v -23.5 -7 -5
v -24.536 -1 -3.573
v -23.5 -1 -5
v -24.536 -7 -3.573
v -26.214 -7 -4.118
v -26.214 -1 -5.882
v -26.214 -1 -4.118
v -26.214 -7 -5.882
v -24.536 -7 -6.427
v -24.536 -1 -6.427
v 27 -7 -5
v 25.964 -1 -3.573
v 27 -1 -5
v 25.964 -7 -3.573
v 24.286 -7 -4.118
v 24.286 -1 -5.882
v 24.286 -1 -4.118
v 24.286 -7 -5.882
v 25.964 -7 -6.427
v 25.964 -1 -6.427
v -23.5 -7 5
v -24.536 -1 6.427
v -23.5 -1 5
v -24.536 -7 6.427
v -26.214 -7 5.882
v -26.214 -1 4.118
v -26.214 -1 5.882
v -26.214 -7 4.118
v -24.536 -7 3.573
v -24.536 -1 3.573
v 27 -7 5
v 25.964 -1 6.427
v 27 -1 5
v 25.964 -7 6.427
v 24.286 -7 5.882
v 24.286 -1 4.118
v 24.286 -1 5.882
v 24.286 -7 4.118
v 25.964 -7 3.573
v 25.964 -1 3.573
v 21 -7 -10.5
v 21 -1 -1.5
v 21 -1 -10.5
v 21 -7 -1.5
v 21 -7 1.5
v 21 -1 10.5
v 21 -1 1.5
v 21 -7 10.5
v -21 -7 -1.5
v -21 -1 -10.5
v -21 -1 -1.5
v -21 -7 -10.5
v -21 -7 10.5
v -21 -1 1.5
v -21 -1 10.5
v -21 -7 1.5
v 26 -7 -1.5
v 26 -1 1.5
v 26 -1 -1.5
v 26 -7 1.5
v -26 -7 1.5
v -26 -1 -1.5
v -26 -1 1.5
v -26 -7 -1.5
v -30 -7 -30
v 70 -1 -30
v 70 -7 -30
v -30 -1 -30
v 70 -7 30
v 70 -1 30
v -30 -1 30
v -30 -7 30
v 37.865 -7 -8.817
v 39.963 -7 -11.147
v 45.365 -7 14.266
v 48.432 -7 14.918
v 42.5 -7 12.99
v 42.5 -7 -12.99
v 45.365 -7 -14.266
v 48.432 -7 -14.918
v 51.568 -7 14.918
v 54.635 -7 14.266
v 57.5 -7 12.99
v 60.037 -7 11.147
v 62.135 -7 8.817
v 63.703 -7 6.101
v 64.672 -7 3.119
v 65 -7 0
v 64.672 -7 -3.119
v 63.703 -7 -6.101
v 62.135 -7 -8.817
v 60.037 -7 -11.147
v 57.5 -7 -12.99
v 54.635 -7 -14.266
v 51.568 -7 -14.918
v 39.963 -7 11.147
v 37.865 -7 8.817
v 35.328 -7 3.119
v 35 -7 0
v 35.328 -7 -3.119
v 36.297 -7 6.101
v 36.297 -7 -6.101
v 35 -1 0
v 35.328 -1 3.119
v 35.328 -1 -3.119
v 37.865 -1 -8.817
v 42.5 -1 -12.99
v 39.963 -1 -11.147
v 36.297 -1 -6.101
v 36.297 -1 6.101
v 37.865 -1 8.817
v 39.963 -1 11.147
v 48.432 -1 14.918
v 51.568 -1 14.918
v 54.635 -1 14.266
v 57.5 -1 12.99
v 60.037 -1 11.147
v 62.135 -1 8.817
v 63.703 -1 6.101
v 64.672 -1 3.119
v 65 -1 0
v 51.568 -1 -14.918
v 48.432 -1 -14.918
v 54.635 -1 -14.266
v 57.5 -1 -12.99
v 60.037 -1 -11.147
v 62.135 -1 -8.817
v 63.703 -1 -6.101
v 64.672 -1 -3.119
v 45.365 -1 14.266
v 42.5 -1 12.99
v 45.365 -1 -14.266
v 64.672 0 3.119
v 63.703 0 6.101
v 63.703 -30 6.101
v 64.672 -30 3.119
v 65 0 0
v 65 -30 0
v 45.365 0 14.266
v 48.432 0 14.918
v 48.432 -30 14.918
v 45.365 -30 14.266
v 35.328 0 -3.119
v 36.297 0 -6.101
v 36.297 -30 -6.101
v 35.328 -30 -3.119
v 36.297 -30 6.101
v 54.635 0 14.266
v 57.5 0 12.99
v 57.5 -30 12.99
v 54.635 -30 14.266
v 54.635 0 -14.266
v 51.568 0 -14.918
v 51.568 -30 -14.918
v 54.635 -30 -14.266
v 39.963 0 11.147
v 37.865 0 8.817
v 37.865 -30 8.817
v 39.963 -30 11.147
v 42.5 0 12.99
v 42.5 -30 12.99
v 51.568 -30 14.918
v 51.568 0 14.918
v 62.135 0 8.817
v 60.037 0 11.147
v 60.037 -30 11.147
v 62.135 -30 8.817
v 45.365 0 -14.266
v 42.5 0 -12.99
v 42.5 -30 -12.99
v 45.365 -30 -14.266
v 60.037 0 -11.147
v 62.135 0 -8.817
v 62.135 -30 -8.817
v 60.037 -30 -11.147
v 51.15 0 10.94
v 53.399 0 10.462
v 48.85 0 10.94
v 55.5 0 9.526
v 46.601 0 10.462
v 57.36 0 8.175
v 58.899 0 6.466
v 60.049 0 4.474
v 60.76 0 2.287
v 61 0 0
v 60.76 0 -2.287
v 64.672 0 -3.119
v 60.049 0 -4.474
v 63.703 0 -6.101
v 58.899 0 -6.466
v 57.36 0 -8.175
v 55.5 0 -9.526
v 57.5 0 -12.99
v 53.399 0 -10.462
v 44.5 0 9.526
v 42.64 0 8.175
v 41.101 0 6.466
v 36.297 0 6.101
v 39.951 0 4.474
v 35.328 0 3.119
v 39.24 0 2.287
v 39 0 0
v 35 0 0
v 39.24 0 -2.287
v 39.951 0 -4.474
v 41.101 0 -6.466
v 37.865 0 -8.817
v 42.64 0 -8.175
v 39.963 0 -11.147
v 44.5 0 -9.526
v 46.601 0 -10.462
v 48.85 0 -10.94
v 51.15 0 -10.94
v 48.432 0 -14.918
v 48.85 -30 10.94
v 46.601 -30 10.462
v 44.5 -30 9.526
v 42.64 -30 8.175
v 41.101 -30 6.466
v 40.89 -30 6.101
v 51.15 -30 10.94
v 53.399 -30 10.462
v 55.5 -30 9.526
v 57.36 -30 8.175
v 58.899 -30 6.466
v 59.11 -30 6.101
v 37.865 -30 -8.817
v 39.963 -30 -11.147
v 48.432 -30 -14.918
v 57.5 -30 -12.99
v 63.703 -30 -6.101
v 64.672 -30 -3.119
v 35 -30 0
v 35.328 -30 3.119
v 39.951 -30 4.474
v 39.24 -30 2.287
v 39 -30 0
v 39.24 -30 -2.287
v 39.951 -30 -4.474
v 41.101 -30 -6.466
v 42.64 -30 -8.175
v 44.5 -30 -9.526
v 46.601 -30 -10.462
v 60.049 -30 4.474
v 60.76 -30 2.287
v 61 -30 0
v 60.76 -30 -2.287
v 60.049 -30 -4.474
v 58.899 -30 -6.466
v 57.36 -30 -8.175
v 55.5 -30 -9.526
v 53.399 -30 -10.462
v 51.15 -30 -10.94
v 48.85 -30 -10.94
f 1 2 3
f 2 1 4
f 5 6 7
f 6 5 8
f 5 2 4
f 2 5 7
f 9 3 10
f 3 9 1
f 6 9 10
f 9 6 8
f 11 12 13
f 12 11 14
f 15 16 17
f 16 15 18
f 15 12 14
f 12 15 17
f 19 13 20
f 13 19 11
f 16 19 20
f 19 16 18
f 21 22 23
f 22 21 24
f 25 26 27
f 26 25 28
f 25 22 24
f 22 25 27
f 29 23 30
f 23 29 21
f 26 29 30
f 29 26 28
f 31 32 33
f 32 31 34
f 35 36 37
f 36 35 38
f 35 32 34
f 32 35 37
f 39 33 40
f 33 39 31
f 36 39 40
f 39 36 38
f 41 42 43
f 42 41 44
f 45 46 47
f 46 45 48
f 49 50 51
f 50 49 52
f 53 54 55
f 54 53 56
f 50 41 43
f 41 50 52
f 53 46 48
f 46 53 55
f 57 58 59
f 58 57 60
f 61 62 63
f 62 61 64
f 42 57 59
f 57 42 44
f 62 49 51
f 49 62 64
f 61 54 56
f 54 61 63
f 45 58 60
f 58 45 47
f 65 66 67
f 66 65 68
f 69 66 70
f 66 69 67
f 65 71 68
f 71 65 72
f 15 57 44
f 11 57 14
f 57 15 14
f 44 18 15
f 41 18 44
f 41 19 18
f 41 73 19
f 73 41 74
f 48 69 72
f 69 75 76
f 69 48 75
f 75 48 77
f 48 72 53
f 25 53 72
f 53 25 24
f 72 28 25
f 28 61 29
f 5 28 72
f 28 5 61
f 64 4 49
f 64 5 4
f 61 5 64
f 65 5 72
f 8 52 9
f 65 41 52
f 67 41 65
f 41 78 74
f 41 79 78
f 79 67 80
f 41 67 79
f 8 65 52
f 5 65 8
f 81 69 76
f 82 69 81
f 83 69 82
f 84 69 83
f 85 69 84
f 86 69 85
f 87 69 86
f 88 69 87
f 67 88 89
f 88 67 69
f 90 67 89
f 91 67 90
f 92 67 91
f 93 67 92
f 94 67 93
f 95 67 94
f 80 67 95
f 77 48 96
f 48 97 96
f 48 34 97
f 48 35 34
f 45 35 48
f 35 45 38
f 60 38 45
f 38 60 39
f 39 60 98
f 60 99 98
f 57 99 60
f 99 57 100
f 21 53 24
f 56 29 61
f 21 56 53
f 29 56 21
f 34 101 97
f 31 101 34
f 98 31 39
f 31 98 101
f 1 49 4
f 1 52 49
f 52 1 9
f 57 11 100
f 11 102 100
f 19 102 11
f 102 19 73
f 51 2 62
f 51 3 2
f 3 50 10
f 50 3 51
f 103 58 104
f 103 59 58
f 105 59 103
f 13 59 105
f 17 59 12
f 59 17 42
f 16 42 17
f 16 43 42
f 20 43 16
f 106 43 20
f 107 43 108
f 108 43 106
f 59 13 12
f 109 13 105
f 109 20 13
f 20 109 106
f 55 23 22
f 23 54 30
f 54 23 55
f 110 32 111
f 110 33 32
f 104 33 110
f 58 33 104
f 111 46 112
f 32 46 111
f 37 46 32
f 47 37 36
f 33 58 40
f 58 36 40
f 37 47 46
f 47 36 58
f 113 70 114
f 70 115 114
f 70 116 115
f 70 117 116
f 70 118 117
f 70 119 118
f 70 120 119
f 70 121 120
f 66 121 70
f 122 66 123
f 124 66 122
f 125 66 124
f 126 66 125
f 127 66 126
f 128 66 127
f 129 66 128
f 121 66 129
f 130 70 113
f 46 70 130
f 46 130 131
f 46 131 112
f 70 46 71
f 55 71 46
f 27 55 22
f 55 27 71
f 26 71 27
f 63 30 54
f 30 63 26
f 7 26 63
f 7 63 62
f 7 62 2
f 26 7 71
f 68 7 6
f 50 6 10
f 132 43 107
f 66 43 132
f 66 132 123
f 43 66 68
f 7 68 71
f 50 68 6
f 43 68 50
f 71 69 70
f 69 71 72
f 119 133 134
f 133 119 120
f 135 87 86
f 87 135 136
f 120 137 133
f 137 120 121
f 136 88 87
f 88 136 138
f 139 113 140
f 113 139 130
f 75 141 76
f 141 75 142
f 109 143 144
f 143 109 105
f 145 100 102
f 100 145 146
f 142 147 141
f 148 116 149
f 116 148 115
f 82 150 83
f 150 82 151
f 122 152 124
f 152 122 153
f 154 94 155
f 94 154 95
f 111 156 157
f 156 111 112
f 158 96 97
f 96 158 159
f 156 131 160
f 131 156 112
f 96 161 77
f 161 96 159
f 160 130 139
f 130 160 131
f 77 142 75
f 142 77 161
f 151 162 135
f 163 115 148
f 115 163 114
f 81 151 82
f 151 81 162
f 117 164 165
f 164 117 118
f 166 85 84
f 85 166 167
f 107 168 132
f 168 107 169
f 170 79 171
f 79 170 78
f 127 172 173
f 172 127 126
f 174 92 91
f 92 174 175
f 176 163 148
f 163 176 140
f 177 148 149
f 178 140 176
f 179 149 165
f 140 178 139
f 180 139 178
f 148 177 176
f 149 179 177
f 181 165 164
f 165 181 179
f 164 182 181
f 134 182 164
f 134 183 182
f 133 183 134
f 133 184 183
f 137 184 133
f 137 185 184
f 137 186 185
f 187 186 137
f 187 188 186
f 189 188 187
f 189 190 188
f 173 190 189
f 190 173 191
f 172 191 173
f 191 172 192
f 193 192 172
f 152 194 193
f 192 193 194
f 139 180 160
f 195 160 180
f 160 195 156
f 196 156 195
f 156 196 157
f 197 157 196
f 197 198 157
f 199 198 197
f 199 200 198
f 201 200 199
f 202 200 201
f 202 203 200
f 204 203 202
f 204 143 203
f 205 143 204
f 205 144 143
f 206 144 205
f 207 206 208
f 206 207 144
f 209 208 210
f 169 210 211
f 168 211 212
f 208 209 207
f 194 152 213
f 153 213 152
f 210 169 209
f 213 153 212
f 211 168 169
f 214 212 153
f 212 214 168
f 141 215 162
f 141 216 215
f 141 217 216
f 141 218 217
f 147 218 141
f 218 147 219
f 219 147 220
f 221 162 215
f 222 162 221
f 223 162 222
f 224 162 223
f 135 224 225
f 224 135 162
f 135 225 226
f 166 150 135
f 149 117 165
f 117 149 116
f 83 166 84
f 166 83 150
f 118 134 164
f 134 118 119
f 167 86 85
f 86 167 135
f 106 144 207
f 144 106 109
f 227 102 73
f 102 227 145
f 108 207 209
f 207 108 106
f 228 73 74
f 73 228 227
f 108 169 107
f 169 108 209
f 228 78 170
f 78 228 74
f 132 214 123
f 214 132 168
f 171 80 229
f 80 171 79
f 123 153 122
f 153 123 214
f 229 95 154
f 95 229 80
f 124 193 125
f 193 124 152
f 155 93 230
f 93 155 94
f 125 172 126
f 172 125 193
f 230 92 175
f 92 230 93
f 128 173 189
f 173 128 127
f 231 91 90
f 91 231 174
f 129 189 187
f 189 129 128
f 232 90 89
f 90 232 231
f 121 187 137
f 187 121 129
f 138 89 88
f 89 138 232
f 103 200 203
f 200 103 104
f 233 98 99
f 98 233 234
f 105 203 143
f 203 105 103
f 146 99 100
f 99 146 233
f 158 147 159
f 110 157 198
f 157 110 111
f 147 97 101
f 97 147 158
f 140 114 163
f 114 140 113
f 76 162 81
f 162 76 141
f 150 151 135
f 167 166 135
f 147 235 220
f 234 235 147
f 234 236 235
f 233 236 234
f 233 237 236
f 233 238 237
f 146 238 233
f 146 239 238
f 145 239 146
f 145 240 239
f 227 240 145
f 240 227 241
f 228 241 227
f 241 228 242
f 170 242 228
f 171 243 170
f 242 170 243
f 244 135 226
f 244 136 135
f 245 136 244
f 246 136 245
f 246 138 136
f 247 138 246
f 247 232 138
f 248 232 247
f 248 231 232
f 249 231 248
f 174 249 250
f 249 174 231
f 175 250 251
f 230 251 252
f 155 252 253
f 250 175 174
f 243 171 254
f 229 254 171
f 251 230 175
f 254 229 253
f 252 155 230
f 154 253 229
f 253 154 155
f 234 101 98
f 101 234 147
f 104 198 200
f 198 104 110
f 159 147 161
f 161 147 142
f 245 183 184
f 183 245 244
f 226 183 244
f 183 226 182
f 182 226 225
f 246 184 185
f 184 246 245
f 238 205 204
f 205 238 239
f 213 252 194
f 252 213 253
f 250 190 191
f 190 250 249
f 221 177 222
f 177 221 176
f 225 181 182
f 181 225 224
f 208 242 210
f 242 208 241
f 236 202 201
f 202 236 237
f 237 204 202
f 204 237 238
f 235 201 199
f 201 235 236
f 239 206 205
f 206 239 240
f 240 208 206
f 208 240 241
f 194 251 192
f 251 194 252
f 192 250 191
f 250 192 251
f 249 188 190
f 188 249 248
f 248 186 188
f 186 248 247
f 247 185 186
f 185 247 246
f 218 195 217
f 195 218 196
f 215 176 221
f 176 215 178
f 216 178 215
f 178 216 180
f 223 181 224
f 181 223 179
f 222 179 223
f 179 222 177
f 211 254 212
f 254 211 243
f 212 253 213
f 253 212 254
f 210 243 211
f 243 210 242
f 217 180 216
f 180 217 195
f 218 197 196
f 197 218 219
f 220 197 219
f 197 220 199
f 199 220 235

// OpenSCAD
difference(){
    baseplate();
        servo();

    rotate([90,0,0]){
        translate([50,0,-5]){
            linear_extrude(height=70)
                circle(11);
        }
    }
}

module baseplate(){
translate([20,-4,-30]){
        linear_extrude(height=60)
            square([100,6], center=true);
}
rotate([90,0,0]){
translate([50,0,0])
    linear_extrude(height=30)
        circle(15);
}
}

module servo(){ 
 //40.5x20
 color("yellow")
     
     rotate([90,0,0]){
        linear_extrude(height=120)
            square([42,21], center=true);
        linear_extrude(height=120)
            square([52,3], center=true);
         
         //10x50.5
         translate([25.5,5,60]){
            cylinder(h=120, r=1.5, center=true);
            translate([-50.5,0,0]){
                cylinder(h=120, r=1.5, center=true);
                translate([0,-10,0]){
                    cylinder(h=120, r=1.5, center=true);
                    translate([50.5,0,0])
                        cylinder(h=120, r=1.5, center=true);
                }
             }
         }
    }
}
